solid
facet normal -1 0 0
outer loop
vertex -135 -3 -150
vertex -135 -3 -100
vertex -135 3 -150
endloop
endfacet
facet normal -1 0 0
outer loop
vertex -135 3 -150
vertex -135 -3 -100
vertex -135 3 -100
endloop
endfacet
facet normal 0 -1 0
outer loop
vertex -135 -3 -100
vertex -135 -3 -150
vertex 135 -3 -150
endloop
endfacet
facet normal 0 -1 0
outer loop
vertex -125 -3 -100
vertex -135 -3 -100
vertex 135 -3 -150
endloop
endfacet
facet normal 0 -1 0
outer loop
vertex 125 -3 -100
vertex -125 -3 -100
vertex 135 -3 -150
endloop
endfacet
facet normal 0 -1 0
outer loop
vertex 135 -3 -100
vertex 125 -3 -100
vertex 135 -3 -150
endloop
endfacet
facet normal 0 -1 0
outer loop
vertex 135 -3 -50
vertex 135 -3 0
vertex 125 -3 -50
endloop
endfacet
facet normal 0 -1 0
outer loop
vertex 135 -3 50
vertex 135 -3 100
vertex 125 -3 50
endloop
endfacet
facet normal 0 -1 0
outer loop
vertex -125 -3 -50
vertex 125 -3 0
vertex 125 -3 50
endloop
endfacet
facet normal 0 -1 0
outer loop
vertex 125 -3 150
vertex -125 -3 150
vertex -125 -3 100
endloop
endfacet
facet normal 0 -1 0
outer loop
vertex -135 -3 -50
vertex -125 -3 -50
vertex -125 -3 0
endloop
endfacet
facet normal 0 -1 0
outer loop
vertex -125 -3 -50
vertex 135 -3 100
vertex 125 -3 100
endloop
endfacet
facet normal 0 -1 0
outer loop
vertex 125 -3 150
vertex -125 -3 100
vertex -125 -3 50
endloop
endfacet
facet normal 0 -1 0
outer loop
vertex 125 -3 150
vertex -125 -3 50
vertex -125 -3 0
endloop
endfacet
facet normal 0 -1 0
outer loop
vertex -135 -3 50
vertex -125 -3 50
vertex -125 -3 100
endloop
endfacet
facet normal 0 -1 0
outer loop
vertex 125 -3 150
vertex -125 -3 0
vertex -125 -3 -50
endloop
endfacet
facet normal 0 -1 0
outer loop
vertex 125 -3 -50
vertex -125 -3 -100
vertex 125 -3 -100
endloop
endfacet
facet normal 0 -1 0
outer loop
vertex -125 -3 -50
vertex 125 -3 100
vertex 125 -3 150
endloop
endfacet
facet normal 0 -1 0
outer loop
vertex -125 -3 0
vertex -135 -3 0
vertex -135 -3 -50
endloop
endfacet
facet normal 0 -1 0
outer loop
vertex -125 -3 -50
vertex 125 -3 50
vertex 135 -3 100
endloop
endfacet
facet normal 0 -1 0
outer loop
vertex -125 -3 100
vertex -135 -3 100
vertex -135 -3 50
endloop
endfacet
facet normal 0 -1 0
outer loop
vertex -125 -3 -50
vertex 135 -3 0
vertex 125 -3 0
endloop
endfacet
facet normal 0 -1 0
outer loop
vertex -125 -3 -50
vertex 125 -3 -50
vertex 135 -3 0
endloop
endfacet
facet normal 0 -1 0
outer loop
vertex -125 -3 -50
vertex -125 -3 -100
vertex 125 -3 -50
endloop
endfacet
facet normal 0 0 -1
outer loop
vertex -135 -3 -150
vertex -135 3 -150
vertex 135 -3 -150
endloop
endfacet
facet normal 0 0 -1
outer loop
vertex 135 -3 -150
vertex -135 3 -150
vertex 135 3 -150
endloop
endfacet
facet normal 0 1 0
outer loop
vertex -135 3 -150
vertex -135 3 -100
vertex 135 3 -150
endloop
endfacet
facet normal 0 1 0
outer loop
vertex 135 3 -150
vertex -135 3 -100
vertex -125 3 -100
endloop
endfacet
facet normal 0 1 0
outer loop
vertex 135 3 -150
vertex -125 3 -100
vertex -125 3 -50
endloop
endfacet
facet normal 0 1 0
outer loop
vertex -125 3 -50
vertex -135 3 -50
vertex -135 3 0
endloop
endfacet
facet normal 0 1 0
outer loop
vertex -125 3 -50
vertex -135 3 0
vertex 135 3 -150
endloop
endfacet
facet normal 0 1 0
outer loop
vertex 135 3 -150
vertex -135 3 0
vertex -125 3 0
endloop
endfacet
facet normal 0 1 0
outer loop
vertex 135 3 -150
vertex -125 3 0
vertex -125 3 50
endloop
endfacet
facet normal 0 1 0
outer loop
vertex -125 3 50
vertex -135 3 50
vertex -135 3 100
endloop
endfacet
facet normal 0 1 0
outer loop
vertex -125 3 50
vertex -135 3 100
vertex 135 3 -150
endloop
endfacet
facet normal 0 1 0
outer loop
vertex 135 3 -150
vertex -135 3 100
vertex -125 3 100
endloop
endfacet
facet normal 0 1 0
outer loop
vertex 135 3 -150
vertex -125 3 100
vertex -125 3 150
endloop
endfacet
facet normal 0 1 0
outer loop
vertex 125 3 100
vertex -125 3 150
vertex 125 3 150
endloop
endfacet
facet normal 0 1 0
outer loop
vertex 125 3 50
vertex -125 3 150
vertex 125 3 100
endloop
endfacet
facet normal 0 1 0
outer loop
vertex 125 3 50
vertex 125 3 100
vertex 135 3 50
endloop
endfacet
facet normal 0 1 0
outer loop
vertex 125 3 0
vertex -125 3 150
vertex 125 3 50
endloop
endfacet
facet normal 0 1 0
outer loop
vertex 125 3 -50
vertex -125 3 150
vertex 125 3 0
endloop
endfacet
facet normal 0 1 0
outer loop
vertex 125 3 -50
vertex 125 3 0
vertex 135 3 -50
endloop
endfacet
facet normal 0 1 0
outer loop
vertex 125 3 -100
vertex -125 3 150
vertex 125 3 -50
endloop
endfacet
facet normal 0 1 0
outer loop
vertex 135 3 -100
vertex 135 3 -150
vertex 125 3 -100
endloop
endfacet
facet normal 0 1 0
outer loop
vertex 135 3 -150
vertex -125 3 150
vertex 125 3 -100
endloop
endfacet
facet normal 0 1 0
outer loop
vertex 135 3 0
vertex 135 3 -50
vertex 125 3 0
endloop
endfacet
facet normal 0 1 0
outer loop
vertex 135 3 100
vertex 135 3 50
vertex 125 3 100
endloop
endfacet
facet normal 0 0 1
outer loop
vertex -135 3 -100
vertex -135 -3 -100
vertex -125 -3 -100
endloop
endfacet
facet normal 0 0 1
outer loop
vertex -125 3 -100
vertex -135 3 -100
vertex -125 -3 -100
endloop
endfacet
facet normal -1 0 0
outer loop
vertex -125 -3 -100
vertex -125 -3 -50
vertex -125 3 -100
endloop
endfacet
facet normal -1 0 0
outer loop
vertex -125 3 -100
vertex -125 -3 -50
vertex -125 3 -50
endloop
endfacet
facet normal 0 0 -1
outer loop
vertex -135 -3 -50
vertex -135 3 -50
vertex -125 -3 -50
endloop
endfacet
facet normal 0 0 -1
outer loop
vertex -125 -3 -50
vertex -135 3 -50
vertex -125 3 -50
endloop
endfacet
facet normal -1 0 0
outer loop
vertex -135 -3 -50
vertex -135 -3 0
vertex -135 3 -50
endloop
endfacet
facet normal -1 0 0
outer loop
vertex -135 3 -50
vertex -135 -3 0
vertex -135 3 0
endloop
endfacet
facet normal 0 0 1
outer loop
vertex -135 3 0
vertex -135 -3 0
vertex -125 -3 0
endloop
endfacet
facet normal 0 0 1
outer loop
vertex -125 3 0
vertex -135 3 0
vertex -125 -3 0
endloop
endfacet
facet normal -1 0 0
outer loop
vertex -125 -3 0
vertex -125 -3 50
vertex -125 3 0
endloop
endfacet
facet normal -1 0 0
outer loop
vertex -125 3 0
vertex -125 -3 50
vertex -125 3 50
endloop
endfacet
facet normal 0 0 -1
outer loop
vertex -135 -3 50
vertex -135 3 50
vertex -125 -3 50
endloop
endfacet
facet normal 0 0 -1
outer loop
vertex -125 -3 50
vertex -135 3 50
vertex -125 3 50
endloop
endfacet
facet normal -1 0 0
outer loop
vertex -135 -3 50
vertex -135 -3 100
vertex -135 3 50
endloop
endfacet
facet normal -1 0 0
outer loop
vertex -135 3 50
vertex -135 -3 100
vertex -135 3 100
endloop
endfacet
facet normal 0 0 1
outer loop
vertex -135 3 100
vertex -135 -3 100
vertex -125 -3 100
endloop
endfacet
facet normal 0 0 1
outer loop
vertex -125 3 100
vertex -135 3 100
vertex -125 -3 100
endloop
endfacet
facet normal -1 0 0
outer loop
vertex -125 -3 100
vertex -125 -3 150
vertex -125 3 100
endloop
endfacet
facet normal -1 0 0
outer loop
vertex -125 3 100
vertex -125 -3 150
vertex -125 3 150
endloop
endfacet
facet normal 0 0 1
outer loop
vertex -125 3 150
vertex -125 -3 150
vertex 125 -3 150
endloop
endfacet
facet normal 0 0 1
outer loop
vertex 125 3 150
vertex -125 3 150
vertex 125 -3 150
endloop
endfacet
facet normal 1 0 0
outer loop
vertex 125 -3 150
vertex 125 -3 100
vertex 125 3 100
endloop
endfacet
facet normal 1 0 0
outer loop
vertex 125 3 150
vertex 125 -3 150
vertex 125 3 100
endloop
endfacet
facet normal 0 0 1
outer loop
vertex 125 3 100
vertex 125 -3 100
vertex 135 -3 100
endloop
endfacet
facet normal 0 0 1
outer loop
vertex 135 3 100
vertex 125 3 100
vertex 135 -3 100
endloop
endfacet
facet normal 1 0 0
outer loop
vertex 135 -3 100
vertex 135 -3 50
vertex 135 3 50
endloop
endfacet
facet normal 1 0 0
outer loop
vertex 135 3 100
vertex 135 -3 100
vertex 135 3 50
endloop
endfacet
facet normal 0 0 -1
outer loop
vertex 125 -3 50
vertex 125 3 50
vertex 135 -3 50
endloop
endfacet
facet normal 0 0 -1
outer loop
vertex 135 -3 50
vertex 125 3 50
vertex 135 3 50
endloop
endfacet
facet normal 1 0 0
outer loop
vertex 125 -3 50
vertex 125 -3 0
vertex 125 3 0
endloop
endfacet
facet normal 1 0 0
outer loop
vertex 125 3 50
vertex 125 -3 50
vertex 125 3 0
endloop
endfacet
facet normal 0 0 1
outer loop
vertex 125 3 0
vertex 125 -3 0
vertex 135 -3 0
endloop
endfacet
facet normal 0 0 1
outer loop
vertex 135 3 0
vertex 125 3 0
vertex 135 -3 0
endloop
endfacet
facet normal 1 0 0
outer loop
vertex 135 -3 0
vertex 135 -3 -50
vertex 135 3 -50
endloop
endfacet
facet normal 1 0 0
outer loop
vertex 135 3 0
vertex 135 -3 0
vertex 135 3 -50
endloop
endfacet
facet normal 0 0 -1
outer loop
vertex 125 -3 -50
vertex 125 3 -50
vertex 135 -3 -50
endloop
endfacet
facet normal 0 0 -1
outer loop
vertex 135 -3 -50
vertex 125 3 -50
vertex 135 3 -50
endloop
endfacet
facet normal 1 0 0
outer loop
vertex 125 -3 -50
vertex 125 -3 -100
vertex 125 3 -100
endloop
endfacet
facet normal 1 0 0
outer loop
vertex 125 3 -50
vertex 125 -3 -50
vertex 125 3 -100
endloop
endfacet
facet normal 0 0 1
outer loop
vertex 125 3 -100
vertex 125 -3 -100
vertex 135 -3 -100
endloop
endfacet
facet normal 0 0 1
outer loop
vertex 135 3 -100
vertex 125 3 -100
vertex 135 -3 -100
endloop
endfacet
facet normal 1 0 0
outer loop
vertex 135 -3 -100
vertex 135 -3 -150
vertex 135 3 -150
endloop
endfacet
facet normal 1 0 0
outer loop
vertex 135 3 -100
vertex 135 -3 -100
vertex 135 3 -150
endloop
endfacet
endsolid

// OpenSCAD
//Variables de parametrización
h = 300; //alto
w = 250; //ancho
t = 6;	//Grosor


union(){

	cube([w,t,h],center=true);//Frente
	anclaje();//Pestañas de anclaje

}

module anclaje(){
	n = (h/50)/2; 	//Calculo del numero de pestañas
	for (i=[0:n-1]) {  
		translate([w/2,0,-w/2+i*100])  
			cube([20,6,50],center=true);
	
		translate([-w/2,0,-w/2+i*100])  
			cube([20,6,50],center=true);
	}
}
